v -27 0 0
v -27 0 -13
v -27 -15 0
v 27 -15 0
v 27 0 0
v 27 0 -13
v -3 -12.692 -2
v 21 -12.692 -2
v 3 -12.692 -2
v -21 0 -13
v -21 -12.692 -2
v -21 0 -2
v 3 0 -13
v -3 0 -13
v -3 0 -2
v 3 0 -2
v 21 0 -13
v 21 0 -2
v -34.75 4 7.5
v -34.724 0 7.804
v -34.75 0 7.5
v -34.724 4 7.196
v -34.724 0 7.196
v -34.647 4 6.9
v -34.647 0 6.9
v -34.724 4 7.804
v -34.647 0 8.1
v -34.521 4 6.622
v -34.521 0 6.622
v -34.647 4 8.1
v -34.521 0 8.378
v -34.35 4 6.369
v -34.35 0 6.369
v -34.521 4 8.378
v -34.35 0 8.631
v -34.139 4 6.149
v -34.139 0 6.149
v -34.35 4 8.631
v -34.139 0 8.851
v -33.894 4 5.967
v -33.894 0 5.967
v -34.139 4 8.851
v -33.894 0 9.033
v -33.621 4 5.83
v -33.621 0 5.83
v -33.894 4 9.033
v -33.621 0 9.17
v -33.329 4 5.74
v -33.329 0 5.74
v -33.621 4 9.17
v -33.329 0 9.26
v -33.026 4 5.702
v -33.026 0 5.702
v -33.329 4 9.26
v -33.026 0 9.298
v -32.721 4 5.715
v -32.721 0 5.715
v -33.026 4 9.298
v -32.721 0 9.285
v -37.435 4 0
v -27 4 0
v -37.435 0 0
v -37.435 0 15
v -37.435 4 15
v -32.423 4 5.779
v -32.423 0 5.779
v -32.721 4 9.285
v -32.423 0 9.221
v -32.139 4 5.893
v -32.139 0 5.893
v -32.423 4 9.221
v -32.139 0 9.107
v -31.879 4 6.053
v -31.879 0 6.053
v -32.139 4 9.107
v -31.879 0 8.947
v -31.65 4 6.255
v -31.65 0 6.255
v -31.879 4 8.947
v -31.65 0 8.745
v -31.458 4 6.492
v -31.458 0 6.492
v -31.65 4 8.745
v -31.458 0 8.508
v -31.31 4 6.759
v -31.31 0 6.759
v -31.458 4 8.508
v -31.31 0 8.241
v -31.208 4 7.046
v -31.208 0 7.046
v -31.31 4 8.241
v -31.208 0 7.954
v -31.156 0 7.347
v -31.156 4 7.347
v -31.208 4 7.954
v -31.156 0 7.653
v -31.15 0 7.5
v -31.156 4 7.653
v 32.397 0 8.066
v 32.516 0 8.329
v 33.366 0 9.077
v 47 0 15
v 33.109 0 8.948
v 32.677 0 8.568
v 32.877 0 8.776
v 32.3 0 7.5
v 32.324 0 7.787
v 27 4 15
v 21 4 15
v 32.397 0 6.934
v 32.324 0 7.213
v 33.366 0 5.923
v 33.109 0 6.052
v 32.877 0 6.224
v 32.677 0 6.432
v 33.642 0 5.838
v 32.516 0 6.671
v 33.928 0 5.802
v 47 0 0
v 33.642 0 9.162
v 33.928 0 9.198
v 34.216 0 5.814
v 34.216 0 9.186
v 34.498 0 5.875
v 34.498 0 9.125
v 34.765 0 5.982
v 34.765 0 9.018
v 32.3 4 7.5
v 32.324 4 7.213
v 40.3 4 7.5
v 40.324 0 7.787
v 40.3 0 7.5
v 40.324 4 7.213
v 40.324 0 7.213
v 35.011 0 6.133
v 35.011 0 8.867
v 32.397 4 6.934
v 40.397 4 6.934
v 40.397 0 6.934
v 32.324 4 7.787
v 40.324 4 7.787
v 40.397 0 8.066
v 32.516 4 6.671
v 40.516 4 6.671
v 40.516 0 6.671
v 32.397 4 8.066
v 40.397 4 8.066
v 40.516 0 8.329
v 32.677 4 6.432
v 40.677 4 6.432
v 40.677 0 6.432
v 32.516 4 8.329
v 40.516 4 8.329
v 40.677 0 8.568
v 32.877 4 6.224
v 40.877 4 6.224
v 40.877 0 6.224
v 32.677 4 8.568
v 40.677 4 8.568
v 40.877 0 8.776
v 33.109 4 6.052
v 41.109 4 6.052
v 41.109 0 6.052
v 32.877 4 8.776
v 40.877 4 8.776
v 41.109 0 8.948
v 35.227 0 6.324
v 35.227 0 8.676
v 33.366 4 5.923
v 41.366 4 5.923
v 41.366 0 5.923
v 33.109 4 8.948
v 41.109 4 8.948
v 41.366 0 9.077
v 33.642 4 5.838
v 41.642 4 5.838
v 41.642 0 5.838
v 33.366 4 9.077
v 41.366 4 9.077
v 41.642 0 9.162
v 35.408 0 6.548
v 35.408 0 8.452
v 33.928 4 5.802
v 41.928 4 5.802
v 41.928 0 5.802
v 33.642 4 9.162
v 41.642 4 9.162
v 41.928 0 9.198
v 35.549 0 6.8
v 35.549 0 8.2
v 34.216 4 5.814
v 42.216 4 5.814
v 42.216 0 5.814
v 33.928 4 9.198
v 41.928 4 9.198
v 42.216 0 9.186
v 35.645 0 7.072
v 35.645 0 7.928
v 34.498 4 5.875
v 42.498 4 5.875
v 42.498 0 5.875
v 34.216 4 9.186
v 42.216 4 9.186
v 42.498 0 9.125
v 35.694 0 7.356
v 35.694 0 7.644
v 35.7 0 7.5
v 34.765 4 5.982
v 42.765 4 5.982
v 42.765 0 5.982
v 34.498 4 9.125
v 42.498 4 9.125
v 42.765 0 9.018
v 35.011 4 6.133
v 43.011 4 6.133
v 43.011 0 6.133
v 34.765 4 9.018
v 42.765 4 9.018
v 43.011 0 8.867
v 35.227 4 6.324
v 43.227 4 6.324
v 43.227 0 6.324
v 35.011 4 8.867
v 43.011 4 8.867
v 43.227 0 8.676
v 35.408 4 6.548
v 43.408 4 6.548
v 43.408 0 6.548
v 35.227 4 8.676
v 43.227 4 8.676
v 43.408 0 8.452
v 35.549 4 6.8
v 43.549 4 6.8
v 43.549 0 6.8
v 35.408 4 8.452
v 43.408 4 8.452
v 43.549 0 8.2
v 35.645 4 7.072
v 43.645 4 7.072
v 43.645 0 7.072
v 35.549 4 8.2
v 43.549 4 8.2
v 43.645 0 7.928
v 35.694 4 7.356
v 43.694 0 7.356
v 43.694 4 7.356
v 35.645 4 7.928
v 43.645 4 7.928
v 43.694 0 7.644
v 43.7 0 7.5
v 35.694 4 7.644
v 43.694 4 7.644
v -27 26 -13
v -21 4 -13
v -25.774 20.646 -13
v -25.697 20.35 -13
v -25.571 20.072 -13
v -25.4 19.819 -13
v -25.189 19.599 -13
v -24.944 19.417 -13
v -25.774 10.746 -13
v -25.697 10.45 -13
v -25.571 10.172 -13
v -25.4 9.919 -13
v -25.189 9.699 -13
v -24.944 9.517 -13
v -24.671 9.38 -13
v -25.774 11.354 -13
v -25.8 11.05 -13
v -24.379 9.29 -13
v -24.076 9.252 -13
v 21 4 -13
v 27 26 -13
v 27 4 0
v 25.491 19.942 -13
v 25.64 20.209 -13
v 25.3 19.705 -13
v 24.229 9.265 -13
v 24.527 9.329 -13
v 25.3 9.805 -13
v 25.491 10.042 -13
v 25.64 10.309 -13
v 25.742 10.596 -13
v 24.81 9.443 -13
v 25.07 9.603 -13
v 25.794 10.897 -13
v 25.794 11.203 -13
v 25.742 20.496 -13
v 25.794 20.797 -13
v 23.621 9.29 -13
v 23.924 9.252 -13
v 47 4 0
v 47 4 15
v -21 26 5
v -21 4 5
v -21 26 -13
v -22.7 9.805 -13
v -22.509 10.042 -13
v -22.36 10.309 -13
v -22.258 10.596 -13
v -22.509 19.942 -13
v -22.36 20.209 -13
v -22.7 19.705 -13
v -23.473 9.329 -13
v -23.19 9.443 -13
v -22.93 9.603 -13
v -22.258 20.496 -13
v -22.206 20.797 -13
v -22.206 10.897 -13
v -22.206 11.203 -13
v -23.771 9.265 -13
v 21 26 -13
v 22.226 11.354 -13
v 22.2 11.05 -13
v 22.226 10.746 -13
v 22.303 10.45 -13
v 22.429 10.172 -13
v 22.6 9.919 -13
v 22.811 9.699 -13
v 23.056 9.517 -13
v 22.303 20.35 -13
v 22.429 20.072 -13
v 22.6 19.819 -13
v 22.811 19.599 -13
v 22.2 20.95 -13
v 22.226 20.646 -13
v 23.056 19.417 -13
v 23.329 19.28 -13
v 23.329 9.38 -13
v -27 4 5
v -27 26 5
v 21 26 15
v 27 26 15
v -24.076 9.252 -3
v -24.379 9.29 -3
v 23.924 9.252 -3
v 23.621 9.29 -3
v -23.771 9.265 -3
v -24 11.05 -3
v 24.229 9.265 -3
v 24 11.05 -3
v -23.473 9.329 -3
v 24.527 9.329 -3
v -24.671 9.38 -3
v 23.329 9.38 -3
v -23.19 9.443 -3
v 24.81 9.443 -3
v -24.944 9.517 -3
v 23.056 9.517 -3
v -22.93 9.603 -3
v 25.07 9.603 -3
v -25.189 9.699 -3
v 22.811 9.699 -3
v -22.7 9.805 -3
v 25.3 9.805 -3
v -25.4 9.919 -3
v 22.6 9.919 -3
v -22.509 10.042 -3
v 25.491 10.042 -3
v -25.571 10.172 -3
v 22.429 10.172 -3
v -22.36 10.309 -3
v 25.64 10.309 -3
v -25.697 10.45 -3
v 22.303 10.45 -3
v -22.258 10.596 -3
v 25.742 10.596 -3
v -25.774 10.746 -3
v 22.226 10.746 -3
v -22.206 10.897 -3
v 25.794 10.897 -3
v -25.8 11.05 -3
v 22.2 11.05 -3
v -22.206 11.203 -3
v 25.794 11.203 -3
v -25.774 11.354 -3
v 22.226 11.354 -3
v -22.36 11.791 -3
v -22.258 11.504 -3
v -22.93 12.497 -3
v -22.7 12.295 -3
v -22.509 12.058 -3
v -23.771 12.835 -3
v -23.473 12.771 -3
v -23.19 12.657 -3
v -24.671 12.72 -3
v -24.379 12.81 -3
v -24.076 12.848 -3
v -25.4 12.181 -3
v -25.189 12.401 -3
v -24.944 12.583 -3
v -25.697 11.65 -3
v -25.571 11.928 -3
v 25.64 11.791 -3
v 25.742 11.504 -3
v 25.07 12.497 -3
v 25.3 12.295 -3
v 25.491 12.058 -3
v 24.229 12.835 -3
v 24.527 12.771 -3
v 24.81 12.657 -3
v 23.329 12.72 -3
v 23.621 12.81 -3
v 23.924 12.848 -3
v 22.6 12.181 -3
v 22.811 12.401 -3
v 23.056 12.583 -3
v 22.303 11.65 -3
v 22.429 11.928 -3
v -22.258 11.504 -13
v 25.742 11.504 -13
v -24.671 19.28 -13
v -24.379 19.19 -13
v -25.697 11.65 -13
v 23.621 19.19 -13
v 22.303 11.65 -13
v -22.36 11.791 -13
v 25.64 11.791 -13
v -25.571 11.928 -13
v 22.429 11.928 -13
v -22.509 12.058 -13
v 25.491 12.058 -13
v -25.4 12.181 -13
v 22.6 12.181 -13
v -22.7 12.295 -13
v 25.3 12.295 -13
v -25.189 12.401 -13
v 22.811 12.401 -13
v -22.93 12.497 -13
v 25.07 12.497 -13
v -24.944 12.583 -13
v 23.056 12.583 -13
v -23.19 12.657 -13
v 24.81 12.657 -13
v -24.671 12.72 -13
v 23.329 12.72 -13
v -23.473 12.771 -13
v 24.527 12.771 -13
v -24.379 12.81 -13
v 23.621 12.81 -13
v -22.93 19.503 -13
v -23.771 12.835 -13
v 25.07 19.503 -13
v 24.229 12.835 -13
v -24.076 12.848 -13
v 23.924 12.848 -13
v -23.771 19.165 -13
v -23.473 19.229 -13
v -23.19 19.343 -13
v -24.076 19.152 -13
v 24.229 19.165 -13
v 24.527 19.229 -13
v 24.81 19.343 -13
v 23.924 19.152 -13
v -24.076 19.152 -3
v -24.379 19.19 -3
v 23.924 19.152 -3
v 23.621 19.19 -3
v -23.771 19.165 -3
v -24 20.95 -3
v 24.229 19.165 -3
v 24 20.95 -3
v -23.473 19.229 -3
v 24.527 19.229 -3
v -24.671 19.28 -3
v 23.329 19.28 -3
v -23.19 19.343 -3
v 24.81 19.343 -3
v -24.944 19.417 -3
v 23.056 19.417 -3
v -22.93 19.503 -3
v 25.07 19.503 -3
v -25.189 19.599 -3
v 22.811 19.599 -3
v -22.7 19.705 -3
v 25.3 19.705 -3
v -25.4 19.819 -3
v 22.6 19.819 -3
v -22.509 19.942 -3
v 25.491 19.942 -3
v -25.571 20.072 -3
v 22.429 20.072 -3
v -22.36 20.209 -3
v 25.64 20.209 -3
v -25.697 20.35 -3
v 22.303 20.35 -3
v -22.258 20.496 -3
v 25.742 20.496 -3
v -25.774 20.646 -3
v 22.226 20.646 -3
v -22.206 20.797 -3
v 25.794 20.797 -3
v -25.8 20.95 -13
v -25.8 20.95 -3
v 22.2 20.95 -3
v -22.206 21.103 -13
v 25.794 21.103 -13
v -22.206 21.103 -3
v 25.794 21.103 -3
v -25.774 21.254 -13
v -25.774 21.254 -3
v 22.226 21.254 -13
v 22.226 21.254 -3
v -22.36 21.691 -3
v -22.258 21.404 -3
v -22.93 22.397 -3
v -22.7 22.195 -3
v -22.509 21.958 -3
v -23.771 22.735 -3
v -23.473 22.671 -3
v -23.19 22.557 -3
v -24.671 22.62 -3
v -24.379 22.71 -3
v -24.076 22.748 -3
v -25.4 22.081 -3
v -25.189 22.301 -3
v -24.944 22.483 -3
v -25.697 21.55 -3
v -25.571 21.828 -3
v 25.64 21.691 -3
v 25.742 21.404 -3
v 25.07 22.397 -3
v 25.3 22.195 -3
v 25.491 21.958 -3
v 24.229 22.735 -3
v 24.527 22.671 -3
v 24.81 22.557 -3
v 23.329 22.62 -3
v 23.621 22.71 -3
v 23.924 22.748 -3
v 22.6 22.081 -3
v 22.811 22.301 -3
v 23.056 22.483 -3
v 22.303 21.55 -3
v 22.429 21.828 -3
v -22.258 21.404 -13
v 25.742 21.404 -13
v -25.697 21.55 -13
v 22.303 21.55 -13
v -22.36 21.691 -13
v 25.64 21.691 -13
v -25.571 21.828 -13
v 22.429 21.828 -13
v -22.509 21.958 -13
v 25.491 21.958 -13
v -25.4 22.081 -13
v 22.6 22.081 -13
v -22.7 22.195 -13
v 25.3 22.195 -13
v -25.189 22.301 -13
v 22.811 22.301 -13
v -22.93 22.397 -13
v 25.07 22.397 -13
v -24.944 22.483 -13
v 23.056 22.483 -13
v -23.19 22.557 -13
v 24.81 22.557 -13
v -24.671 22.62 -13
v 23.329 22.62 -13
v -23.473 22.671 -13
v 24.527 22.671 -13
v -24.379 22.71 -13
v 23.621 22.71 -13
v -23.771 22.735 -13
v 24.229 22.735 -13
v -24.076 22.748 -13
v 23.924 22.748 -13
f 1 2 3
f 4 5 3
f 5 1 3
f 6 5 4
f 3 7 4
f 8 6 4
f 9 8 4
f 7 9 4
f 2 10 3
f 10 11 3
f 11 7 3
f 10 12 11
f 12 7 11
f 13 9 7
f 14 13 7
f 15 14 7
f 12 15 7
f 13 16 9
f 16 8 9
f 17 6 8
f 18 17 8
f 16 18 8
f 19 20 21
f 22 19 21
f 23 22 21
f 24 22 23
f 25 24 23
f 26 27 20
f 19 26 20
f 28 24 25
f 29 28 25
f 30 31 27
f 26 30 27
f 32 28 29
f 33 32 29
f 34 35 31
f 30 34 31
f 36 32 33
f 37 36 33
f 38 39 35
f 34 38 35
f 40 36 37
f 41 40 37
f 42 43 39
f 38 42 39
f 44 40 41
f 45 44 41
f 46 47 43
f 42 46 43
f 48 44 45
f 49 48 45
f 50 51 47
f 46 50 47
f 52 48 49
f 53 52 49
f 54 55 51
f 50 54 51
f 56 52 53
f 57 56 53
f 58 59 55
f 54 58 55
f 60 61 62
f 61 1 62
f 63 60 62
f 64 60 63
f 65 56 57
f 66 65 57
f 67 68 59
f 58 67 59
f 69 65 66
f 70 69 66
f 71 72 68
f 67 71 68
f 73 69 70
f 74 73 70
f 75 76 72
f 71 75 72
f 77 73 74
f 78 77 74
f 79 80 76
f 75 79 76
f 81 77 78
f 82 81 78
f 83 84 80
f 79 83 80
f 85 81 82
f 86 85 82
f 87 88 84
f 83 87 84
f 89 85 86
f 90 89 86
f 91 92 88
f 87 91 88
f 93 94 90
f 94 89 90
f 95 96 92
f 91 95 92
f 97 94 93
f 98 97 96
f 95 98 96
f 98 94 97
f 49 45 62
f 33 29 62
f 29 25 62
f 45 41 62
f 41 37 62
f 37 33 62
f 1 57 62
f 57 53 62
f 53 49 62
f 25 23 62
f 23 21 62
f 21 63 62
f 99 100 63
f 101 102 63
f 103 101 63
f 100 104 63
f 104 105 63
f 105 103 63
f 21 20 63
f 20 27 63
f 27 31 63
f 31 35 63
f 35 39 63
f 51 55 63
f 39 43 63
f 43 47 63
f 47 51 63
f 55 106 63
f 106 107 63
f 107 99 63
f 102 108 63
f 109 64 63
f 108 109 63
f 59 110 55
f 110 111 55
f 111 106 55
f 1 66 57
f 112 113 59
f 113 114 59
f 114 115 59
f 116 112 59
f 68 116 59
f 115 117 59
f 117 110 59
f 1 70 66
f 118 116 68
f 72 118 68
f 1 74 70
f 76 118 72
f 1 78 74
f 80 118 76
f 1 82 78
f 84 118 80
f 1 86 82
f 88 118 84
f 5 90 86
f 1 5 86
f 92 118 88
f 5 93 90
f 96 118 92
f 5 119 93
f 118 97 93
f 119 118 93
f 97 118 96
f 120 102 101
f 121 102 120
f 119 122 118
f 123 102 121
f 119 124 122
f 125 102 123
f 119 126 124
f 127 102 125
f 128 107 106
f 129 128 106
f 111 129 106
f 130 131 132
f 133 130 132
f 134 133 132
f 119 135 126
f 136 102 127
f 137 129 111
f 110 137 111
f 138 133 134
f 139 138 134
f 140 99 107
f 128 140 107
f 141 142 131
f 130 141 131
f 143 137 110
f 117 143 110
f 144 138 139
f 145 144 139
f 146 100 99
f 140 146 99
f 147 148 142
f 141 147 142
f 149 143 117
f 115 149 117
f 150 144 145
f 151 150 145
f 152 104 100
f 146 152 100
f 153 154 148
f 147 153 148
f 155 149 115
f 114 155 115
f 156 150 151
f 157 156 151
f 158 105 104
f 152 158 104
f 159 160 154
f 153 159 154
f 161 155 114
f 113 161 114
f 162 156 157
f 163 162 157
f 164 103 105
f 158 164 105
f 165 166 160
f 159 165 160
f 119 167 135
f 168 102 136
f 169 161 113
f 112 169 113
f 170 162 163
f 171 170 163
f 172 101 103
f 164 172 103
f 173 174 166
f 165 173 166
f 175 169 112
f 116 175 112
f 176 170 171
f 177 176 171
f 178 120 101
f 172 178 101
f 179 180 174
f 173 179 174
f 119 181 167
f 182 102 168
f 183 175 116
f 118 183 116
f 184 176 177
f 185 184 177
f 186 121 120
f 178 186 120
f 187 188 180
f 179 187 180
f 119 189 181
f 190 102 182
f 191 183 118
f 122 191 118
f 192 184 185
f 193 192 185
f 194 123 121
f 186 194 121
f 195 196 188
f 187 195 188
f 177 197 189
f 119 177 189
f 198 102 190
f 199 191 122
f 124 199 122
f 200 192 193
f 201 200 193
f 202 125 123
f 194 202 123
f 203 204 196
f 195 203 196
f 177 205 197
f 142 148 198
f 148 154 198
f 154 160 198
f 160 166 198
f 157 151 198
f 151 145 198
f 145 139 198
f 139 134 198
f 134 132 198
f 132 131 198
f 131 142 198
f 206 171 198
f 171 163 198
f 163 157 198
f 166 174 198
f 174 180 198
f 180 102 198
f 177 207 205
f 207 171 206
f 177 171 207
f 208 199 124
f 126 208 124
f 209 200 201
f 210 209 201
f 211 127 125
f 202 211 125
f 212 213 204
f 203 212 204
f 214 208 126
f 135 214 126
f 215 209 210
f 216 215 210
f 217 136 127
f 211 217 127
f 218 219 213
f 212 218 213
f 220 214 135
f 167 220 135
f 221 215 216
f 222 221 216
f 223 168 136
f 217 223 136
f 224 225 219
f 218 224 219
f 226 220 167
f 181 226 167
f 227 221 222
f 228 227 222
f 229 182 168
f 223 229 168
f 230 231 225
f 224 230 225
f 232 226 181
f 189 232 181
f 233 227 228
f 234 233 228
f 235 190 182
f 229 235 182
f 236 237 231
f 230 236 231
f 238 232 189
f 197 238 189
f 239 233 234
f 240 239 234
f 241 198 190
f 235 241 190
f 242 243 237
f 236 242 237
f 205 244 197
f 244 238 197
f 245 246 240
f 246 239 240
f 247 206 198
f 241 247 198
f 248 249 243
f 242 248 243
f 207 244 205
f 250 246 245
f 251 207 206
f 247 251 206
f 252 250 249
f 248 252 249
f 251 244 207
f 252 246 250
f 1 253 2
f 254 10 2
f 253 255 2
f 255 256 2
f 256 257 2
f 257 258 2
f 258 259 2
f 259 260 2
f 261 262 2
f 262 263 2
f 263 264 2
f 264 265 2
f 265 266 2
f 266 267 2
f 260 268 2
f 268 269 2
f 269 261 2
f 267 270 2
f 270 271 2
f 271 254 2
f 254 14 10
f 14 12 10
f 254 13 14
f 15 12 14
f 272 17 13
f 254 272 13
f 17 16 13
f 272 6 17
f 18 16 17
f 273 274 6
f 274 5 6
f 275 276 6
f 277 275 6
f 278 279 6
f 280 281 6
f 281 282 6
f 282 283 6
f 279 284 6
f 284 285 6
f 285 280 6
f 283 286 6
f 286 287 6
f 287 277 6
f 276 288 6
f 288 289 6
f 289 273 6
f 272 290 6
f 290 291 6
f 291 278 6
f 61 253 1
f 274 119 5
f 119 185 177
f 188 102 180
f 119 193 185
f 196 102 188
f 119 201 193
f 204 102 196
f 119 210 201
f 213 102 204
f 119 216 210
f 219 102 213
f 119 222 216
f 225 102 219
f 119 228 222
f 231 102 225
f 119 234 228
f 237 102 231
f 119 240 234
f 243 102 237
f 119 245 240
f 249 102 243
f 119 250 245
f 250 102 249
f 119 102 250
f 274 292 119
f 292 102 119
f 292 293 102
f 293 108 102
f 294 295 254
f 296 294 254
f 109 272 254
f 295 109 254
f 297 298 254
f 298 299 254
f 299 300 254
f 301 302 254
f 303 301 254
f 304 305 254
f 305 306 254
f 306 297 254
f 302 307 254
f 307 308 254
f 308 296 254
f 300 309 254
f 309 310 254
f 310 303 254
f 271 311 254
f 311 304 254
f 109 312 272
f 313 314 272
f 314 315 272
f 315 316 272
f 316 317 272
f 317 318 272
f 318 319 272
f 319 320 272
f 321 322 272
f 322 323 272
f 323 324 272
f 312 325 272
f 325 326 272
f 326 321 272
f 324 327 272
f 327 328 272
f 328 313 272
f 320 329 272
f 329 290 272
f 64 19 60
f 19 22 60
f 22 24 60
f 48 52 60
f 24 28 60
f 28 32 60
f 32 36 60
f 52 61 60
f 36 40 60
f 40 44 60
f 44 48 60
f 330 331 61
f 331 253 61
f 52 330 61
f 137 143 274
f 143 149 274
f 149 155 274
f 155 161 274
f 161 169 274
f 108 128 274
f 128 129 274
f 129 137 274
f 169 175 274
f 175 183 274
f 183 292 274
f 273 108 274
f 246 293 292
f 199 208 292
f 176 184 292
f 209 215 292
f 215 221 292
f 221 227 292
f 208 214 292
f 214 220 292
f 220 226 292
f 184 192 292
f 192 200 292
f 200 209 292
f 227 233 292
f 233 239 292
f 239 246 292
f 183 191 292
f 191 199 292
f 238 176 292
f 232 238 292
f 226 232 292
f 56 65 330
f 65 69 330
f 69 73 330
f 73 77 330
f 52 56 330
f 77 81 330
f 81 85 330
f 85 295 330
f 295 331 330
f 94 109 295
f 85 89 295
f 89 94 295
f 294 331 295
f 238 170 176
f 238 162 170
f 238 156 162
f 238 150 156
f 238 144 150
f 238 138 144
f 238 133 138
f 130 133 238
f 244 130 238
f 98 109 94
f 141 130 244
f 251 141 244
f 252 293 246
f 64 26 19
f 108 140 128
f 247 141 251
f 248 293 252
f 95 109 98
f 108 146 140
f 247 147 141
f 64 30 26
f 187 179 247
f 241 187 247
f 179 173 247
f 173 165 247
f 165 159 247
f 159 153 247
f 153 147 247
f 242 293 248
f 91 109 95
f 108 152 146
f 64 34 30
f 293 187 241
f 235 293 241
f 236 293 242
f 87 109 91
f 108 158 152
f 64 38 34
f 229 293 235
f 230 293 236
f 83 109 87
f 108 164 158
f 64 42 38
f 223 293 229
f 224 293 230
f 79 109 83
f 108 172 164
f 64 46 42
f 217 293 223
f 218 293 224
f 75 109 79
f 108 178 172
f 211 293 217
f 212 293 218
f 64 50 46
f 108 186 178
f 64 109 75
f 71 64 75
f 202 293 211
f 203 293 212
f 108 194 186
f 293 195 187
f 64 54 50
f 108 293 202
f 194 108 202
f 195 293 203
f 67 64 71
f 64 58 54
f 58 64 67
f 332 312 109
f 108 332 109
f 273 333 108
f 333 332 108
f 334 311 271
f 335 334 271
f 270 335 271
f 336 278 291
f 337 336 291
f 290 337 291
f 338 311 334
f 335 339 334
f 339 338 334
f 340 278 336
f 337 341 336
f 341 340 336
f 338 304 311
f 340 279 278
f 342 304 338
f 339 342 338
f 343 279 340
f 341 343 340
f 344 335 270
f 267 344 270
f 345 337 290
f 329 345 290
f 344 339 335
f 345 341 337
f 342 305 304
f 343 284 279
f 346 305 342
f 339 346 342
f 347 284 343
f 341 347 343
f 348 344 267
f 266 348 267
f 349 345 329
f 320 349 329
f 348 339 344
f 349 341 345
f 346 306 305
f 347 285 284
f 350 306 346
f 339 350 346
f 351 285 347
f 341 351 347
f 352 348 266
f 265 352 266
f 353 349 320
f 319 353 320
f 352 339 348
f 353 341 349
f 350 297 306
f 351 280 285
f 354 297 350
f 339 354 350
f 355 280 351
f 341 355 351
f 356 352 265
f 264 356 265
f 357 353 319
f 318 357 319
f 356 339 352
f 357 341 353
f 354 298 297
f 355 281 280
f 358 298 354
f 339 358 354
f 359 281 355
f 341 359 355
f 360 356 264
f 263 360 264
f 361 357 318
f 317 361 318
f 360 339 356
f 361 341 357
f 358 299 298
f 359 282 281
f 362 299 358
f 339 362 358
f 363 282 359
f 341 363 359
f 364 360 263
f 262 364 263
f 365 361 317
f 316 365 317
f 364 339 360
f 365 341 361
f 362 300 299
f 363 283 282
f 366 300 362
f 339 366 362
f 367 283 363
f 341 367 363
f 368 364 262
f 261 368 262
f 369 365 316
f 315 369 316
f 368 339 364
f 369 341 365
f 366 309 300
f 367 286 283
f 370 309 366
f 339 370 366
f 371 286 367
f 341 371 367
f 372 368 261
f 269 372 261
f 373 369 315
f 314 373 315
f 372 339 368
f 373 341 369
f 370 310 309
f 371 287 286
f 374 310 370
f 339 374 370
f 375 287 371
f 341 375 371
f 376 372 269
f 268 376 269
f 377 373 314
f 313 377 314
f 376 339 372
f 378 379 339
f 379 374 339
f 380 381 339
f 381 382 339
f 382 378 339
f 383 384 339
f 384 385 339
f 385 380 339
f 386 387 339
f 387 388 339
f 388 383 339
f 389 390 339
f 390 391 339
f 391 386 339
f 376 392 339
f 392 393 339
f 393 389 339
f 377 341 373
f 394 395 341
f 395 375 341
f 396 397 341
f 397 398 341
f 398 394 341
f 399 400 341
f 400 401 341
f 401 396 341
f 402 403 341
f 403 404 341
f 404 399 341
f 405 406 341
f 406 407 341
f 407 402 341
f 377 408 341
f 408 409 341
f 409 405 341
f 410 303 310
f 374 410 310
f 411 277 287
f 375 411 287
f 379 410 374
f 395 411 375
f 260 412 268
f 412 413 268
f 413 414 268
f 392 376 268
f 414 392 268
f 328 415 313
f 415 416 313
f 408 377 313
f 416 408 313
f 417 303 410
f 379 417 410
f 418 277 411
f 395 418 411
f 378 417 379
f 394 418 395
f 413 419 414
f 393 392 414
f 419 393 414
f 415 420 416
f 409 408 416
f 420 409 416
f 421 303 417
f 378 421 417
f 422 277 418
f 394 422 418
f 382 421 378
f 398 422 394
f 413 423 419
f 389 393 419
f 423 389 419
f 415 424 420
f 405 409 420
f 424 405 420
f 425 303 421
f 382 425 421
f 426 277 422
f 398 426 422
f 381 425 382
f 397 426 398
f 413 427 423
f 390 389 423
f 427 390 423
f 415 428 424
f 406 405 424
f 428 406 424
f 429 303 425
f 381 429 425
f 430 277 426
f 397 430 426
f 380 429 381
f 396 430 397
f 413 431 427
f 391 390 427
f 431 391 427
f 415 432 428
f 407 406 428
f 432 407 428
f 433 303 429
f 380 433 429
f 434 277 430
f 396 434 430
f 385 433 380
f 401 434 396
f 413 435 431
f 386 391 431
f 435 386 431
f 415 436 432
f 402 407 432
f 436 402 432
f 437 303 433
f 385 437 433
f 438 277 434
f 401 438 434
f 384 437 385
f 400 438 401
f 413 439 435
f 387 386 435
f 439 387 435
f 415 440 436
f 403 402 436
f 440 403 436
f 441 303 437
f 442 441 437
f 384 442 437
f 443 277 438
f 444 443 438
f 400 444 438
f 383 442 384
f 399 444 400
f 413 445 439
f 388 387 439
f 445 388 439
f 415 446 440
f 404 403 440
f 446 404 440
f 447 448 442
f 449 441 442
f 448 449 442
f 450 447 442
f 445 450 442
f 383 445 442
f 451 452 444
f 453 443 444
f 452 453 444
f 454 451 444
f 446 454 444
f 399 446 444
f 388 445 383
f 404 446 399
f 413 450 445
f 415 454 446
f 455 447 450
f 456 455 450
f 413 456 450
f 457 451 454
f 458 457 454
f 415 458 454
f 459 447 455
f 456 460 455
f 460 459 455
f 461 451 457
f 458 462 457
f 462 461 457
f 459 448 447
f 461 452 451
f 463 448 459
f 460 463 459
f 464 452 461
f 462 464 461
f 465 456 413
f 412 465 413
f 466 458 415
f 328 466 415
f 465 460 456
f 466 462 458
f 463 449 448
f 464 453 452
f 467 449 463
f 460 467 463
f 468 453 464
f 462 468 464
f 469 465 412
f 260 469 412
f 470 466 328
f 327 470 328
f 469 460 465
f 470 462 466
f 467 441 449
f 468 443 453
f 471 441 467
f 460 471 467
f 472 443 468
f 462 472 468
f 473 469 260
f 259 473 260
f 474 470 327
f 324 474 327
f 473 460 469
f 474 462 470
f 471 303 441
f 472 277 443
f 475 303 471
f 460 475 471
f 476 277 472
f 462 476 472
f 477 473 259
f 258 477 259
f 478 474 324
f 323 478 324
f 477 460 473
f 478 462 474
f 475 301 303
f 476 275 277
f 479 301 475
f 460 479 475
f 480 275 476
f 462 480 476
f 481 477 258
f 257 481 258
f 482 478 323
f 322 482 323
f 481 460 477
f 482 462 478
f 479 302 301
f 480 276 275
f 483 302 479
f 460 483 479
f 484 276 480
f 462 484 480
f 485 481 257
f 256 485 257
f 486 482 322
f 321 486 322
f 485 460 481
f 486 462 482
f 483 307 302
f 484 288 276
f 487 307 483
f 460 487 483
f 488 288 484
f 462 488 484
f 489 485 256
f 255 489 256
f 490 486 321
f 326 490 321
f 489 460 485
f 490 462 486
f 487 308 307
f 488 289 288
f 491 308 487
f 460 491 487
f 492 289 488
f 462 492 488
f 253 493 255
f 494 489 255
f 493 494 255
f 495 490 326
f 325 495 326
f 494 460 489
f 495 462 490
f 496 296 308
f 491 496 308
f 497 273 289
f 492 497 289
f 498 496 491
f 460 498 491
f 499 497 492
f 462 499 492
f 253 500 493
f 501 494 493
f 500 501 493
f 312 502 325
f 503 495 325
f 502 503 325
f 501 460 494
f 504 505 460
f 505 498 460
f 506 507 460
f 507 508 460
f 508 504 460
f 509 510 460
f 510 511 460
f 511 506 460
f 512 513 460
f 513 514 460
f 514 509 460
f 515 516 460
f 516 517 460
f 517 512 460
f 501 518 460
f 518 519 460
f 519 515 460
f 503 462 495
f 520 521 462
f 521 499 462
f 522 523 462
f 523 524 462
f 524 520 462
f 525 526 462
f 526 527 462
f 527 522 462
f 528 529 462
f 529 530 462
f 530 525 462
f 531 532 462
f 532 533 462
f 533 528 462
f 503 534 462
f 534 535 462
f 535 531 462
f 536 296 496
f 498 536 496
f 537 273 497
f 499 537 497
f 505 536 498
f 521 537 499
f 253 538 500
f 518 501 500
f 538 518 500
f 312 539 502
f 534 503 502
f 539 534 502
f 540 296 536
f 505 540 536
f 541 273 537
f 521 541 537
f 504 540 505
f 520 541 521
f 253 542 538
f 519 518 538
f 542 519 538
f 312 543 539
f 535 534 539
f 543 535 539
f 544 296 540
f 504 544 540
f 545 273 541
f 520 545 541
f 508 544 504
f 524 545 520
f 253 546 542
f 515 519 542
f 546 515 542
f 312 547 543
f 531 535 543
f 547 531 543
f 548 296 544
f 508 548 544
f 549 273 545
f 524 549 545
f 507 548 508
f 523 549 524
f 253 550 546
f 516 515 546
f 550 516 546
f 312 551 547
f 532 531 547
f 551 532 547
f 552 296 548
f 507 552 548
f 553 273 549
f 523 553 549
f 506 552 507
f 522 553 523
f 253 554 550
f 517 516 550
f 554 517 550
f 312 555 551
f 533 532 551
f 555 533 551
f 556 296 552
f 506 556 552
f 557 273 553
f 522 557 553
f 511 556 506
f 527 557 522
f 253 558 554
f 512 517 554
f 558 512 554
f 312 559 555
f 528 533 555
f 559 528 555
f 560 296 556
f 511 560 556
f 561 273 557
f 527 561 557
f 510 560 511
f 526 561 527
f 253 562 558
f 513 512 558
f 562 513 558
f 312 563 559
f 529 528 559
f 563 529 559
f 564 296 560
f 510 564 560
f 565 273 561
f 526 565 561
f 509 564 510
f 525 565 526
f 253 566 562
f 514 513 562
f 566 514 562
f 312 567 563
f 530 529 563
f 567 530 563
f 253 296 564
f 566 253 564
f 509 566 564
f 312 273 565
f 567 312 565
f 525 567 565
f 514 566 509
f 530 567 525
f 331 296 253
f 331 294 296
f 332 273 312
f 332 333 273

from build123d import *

# Parameters (mm, degrees)
SKETCH1_W           = 21
SKETCH1_H           = 4
BOSS_EXTRUDE1_DEPTH = 15
BOSS_EXTRUDE2_DEPTH = 13
SKETCH3_R           = 1.8
CUT_EXTRUDE1_DEPTH  = 10
SKETCH4_W           = 9.565194399
SKETCH4_H           = 15
SKETCH4_R           = 1.8
SKETCH4_R_2         = 1.7
CUT_EXTRUDE2_DEPTH  = 15
SKETCH5_W           = 6
SKETCH5_H           = 10
CUT_EXTRUDE3_DEPTH  = 22
BOSS_EXTRUDE3_DEPTH = 54
SKETCH7_W           = 18
SKETCH7_H           = 15
CUT_EXTRUDE4_DEPTH  = 11


with BuildPart() as part:
    # Sketch1 → Boss-Extrude1 (new body)
    with BuildSketch(Plane.XY):
        Polygon((47, 0), (21, 0), (21, 26), (27, 26), (27, 4), (47, 4), align=None)
        with Locations((-10.5, 2)):
            Rectangle(SKETCH1_W, SKETCH1_H)
        with Locations((10.5, 2)):
            Rectangle(SKETCH1_W, SKETCH1_H)
        Polygon((-47, 0), (-21, 0), (-21, 26), (-27, 26), (-27, 4), (-47, 4), align=None)
    extrude(amount=BOSS_EXTRUDE1_DEPTH)

    # Sketch2 → Boss-Extrude2 (add)
    with BuildSketch(Plane(origin=(0, 0, 0), x_dir=(-1, 0, 0), z_dir=(0, 0, -1))):
        Polygon((-27, 26), (-27, 0), (27, 0), (27, 4), (27, 26), (21, 26), (21, 4), (-21, 4), (-21, 26), align=None)
    extrude(amount=BOSS_EXTRUDE2_DEPTH)

    # Sketch3 → Cut-Extrude1 (cut)
    with BuildSketch(Plane(origin=(0, 0, -13), x_dir=(-1, 0, 0), z_dir=(0, 0, -1))):
        with BuildLine():
            ThreePointArc((-22.2, 20.95), (-22.727207794, 22.222792206), (-24, 22.75))
            Line((-24, 22.75), (-24, 20.95))
            Line((-24, 20.95), (-24, 19.15))
            ThreePointArc((-24, 19.15), (-22.727207794, 19.677207794), (-22.2, 20.95))
        make_face()
        with BuildLine():
            Line((-24, 20.95), (-24, 22.75))
            ThreePointArc((-24, 22.75), (-25.8, 20.95), (-24, 19.15))
            Line((-24, 19.15), (-24, 20.95))
        make_face()
        with Locations((-24, 11.05)):
            Circle(SKETCH3_R)
        with Locations((24, 20.95)):
            Circle(SKETCH3_R)
        with Locations((24, 11.05)):
            Circle(SKETCH3_R)
    extrude(amount=-CUT_EXTRUDE1_DEPTH, mode=Mode.SUBTRACT)

    # Sketch4 → Cut-Extrude2 (cut)
    with BuildSketch(Plane(origin=(0, 4, 0), x_dir=(1, 0, 0), z_dir=(0, 1, 0))):
        with Locations((-42.2174028, -7.5)):
            Rectangle(SKETCH4_W, SKETCH4_H)
        with Locations(Location((-32.949794347, -7.5, 0), (0, 0, 180))):
            Circle(SKETCH4_R)
        with Locations(Location((42, -7.5, 0), (0, 0, 180))):
            Circle(SKETCH4_R_2)
        with Locations(Location((34, -7.5, 0), (0, 0, 180))):
            Circle(SKETCH4_R_2)
    extrude(amount=-CUT_EXTRUDE2_DEPTH, mode=Mode.SUBTRACT)

    # Sketch5 → Cut-Extrude3 (cut)
    with BuildSketch(Plane(origin=(0, 26, 0), x_dir=(1, 0, 0), z_dir=(0, 1, 0))):
        with Locations((-24, -10)):
            Rectangle(SKETCH5_W, SKETCH5_H)
    extrude(amount=-CUT_EXTRUDE3_DEPTH, mode=Mode.SUBTRACT)

    # Sketch6 → Boss-Extrude3 (add)
    with BuildSketch(Plane.ZY.offset(27)):
        Polygon((-13, 0), (0, 0), (0, -15), align=None)
    extrude(amount=-BOSS_EXTRUDE3_DEPTH)

    # Sketch7 → Cut-Extrude4 (cut)
    with BuildSketch(Plane(origin=(0, 0, -13), x_dir=(-1, 0, 0), z_dir=(0, 0, -1))):
        with Locations((-12, -7.5)):
            Rectangle(SKETCH7_W, SKETCH7_H)
        with Locations((12, -7.5)):
            Rectangle(SKETCH7_W, SKETCH7_H)
    extrude(amount=-CUT_EXTRUDE4_DEPTH, mode=Mode.SUBTRACT)


solid = part.part
